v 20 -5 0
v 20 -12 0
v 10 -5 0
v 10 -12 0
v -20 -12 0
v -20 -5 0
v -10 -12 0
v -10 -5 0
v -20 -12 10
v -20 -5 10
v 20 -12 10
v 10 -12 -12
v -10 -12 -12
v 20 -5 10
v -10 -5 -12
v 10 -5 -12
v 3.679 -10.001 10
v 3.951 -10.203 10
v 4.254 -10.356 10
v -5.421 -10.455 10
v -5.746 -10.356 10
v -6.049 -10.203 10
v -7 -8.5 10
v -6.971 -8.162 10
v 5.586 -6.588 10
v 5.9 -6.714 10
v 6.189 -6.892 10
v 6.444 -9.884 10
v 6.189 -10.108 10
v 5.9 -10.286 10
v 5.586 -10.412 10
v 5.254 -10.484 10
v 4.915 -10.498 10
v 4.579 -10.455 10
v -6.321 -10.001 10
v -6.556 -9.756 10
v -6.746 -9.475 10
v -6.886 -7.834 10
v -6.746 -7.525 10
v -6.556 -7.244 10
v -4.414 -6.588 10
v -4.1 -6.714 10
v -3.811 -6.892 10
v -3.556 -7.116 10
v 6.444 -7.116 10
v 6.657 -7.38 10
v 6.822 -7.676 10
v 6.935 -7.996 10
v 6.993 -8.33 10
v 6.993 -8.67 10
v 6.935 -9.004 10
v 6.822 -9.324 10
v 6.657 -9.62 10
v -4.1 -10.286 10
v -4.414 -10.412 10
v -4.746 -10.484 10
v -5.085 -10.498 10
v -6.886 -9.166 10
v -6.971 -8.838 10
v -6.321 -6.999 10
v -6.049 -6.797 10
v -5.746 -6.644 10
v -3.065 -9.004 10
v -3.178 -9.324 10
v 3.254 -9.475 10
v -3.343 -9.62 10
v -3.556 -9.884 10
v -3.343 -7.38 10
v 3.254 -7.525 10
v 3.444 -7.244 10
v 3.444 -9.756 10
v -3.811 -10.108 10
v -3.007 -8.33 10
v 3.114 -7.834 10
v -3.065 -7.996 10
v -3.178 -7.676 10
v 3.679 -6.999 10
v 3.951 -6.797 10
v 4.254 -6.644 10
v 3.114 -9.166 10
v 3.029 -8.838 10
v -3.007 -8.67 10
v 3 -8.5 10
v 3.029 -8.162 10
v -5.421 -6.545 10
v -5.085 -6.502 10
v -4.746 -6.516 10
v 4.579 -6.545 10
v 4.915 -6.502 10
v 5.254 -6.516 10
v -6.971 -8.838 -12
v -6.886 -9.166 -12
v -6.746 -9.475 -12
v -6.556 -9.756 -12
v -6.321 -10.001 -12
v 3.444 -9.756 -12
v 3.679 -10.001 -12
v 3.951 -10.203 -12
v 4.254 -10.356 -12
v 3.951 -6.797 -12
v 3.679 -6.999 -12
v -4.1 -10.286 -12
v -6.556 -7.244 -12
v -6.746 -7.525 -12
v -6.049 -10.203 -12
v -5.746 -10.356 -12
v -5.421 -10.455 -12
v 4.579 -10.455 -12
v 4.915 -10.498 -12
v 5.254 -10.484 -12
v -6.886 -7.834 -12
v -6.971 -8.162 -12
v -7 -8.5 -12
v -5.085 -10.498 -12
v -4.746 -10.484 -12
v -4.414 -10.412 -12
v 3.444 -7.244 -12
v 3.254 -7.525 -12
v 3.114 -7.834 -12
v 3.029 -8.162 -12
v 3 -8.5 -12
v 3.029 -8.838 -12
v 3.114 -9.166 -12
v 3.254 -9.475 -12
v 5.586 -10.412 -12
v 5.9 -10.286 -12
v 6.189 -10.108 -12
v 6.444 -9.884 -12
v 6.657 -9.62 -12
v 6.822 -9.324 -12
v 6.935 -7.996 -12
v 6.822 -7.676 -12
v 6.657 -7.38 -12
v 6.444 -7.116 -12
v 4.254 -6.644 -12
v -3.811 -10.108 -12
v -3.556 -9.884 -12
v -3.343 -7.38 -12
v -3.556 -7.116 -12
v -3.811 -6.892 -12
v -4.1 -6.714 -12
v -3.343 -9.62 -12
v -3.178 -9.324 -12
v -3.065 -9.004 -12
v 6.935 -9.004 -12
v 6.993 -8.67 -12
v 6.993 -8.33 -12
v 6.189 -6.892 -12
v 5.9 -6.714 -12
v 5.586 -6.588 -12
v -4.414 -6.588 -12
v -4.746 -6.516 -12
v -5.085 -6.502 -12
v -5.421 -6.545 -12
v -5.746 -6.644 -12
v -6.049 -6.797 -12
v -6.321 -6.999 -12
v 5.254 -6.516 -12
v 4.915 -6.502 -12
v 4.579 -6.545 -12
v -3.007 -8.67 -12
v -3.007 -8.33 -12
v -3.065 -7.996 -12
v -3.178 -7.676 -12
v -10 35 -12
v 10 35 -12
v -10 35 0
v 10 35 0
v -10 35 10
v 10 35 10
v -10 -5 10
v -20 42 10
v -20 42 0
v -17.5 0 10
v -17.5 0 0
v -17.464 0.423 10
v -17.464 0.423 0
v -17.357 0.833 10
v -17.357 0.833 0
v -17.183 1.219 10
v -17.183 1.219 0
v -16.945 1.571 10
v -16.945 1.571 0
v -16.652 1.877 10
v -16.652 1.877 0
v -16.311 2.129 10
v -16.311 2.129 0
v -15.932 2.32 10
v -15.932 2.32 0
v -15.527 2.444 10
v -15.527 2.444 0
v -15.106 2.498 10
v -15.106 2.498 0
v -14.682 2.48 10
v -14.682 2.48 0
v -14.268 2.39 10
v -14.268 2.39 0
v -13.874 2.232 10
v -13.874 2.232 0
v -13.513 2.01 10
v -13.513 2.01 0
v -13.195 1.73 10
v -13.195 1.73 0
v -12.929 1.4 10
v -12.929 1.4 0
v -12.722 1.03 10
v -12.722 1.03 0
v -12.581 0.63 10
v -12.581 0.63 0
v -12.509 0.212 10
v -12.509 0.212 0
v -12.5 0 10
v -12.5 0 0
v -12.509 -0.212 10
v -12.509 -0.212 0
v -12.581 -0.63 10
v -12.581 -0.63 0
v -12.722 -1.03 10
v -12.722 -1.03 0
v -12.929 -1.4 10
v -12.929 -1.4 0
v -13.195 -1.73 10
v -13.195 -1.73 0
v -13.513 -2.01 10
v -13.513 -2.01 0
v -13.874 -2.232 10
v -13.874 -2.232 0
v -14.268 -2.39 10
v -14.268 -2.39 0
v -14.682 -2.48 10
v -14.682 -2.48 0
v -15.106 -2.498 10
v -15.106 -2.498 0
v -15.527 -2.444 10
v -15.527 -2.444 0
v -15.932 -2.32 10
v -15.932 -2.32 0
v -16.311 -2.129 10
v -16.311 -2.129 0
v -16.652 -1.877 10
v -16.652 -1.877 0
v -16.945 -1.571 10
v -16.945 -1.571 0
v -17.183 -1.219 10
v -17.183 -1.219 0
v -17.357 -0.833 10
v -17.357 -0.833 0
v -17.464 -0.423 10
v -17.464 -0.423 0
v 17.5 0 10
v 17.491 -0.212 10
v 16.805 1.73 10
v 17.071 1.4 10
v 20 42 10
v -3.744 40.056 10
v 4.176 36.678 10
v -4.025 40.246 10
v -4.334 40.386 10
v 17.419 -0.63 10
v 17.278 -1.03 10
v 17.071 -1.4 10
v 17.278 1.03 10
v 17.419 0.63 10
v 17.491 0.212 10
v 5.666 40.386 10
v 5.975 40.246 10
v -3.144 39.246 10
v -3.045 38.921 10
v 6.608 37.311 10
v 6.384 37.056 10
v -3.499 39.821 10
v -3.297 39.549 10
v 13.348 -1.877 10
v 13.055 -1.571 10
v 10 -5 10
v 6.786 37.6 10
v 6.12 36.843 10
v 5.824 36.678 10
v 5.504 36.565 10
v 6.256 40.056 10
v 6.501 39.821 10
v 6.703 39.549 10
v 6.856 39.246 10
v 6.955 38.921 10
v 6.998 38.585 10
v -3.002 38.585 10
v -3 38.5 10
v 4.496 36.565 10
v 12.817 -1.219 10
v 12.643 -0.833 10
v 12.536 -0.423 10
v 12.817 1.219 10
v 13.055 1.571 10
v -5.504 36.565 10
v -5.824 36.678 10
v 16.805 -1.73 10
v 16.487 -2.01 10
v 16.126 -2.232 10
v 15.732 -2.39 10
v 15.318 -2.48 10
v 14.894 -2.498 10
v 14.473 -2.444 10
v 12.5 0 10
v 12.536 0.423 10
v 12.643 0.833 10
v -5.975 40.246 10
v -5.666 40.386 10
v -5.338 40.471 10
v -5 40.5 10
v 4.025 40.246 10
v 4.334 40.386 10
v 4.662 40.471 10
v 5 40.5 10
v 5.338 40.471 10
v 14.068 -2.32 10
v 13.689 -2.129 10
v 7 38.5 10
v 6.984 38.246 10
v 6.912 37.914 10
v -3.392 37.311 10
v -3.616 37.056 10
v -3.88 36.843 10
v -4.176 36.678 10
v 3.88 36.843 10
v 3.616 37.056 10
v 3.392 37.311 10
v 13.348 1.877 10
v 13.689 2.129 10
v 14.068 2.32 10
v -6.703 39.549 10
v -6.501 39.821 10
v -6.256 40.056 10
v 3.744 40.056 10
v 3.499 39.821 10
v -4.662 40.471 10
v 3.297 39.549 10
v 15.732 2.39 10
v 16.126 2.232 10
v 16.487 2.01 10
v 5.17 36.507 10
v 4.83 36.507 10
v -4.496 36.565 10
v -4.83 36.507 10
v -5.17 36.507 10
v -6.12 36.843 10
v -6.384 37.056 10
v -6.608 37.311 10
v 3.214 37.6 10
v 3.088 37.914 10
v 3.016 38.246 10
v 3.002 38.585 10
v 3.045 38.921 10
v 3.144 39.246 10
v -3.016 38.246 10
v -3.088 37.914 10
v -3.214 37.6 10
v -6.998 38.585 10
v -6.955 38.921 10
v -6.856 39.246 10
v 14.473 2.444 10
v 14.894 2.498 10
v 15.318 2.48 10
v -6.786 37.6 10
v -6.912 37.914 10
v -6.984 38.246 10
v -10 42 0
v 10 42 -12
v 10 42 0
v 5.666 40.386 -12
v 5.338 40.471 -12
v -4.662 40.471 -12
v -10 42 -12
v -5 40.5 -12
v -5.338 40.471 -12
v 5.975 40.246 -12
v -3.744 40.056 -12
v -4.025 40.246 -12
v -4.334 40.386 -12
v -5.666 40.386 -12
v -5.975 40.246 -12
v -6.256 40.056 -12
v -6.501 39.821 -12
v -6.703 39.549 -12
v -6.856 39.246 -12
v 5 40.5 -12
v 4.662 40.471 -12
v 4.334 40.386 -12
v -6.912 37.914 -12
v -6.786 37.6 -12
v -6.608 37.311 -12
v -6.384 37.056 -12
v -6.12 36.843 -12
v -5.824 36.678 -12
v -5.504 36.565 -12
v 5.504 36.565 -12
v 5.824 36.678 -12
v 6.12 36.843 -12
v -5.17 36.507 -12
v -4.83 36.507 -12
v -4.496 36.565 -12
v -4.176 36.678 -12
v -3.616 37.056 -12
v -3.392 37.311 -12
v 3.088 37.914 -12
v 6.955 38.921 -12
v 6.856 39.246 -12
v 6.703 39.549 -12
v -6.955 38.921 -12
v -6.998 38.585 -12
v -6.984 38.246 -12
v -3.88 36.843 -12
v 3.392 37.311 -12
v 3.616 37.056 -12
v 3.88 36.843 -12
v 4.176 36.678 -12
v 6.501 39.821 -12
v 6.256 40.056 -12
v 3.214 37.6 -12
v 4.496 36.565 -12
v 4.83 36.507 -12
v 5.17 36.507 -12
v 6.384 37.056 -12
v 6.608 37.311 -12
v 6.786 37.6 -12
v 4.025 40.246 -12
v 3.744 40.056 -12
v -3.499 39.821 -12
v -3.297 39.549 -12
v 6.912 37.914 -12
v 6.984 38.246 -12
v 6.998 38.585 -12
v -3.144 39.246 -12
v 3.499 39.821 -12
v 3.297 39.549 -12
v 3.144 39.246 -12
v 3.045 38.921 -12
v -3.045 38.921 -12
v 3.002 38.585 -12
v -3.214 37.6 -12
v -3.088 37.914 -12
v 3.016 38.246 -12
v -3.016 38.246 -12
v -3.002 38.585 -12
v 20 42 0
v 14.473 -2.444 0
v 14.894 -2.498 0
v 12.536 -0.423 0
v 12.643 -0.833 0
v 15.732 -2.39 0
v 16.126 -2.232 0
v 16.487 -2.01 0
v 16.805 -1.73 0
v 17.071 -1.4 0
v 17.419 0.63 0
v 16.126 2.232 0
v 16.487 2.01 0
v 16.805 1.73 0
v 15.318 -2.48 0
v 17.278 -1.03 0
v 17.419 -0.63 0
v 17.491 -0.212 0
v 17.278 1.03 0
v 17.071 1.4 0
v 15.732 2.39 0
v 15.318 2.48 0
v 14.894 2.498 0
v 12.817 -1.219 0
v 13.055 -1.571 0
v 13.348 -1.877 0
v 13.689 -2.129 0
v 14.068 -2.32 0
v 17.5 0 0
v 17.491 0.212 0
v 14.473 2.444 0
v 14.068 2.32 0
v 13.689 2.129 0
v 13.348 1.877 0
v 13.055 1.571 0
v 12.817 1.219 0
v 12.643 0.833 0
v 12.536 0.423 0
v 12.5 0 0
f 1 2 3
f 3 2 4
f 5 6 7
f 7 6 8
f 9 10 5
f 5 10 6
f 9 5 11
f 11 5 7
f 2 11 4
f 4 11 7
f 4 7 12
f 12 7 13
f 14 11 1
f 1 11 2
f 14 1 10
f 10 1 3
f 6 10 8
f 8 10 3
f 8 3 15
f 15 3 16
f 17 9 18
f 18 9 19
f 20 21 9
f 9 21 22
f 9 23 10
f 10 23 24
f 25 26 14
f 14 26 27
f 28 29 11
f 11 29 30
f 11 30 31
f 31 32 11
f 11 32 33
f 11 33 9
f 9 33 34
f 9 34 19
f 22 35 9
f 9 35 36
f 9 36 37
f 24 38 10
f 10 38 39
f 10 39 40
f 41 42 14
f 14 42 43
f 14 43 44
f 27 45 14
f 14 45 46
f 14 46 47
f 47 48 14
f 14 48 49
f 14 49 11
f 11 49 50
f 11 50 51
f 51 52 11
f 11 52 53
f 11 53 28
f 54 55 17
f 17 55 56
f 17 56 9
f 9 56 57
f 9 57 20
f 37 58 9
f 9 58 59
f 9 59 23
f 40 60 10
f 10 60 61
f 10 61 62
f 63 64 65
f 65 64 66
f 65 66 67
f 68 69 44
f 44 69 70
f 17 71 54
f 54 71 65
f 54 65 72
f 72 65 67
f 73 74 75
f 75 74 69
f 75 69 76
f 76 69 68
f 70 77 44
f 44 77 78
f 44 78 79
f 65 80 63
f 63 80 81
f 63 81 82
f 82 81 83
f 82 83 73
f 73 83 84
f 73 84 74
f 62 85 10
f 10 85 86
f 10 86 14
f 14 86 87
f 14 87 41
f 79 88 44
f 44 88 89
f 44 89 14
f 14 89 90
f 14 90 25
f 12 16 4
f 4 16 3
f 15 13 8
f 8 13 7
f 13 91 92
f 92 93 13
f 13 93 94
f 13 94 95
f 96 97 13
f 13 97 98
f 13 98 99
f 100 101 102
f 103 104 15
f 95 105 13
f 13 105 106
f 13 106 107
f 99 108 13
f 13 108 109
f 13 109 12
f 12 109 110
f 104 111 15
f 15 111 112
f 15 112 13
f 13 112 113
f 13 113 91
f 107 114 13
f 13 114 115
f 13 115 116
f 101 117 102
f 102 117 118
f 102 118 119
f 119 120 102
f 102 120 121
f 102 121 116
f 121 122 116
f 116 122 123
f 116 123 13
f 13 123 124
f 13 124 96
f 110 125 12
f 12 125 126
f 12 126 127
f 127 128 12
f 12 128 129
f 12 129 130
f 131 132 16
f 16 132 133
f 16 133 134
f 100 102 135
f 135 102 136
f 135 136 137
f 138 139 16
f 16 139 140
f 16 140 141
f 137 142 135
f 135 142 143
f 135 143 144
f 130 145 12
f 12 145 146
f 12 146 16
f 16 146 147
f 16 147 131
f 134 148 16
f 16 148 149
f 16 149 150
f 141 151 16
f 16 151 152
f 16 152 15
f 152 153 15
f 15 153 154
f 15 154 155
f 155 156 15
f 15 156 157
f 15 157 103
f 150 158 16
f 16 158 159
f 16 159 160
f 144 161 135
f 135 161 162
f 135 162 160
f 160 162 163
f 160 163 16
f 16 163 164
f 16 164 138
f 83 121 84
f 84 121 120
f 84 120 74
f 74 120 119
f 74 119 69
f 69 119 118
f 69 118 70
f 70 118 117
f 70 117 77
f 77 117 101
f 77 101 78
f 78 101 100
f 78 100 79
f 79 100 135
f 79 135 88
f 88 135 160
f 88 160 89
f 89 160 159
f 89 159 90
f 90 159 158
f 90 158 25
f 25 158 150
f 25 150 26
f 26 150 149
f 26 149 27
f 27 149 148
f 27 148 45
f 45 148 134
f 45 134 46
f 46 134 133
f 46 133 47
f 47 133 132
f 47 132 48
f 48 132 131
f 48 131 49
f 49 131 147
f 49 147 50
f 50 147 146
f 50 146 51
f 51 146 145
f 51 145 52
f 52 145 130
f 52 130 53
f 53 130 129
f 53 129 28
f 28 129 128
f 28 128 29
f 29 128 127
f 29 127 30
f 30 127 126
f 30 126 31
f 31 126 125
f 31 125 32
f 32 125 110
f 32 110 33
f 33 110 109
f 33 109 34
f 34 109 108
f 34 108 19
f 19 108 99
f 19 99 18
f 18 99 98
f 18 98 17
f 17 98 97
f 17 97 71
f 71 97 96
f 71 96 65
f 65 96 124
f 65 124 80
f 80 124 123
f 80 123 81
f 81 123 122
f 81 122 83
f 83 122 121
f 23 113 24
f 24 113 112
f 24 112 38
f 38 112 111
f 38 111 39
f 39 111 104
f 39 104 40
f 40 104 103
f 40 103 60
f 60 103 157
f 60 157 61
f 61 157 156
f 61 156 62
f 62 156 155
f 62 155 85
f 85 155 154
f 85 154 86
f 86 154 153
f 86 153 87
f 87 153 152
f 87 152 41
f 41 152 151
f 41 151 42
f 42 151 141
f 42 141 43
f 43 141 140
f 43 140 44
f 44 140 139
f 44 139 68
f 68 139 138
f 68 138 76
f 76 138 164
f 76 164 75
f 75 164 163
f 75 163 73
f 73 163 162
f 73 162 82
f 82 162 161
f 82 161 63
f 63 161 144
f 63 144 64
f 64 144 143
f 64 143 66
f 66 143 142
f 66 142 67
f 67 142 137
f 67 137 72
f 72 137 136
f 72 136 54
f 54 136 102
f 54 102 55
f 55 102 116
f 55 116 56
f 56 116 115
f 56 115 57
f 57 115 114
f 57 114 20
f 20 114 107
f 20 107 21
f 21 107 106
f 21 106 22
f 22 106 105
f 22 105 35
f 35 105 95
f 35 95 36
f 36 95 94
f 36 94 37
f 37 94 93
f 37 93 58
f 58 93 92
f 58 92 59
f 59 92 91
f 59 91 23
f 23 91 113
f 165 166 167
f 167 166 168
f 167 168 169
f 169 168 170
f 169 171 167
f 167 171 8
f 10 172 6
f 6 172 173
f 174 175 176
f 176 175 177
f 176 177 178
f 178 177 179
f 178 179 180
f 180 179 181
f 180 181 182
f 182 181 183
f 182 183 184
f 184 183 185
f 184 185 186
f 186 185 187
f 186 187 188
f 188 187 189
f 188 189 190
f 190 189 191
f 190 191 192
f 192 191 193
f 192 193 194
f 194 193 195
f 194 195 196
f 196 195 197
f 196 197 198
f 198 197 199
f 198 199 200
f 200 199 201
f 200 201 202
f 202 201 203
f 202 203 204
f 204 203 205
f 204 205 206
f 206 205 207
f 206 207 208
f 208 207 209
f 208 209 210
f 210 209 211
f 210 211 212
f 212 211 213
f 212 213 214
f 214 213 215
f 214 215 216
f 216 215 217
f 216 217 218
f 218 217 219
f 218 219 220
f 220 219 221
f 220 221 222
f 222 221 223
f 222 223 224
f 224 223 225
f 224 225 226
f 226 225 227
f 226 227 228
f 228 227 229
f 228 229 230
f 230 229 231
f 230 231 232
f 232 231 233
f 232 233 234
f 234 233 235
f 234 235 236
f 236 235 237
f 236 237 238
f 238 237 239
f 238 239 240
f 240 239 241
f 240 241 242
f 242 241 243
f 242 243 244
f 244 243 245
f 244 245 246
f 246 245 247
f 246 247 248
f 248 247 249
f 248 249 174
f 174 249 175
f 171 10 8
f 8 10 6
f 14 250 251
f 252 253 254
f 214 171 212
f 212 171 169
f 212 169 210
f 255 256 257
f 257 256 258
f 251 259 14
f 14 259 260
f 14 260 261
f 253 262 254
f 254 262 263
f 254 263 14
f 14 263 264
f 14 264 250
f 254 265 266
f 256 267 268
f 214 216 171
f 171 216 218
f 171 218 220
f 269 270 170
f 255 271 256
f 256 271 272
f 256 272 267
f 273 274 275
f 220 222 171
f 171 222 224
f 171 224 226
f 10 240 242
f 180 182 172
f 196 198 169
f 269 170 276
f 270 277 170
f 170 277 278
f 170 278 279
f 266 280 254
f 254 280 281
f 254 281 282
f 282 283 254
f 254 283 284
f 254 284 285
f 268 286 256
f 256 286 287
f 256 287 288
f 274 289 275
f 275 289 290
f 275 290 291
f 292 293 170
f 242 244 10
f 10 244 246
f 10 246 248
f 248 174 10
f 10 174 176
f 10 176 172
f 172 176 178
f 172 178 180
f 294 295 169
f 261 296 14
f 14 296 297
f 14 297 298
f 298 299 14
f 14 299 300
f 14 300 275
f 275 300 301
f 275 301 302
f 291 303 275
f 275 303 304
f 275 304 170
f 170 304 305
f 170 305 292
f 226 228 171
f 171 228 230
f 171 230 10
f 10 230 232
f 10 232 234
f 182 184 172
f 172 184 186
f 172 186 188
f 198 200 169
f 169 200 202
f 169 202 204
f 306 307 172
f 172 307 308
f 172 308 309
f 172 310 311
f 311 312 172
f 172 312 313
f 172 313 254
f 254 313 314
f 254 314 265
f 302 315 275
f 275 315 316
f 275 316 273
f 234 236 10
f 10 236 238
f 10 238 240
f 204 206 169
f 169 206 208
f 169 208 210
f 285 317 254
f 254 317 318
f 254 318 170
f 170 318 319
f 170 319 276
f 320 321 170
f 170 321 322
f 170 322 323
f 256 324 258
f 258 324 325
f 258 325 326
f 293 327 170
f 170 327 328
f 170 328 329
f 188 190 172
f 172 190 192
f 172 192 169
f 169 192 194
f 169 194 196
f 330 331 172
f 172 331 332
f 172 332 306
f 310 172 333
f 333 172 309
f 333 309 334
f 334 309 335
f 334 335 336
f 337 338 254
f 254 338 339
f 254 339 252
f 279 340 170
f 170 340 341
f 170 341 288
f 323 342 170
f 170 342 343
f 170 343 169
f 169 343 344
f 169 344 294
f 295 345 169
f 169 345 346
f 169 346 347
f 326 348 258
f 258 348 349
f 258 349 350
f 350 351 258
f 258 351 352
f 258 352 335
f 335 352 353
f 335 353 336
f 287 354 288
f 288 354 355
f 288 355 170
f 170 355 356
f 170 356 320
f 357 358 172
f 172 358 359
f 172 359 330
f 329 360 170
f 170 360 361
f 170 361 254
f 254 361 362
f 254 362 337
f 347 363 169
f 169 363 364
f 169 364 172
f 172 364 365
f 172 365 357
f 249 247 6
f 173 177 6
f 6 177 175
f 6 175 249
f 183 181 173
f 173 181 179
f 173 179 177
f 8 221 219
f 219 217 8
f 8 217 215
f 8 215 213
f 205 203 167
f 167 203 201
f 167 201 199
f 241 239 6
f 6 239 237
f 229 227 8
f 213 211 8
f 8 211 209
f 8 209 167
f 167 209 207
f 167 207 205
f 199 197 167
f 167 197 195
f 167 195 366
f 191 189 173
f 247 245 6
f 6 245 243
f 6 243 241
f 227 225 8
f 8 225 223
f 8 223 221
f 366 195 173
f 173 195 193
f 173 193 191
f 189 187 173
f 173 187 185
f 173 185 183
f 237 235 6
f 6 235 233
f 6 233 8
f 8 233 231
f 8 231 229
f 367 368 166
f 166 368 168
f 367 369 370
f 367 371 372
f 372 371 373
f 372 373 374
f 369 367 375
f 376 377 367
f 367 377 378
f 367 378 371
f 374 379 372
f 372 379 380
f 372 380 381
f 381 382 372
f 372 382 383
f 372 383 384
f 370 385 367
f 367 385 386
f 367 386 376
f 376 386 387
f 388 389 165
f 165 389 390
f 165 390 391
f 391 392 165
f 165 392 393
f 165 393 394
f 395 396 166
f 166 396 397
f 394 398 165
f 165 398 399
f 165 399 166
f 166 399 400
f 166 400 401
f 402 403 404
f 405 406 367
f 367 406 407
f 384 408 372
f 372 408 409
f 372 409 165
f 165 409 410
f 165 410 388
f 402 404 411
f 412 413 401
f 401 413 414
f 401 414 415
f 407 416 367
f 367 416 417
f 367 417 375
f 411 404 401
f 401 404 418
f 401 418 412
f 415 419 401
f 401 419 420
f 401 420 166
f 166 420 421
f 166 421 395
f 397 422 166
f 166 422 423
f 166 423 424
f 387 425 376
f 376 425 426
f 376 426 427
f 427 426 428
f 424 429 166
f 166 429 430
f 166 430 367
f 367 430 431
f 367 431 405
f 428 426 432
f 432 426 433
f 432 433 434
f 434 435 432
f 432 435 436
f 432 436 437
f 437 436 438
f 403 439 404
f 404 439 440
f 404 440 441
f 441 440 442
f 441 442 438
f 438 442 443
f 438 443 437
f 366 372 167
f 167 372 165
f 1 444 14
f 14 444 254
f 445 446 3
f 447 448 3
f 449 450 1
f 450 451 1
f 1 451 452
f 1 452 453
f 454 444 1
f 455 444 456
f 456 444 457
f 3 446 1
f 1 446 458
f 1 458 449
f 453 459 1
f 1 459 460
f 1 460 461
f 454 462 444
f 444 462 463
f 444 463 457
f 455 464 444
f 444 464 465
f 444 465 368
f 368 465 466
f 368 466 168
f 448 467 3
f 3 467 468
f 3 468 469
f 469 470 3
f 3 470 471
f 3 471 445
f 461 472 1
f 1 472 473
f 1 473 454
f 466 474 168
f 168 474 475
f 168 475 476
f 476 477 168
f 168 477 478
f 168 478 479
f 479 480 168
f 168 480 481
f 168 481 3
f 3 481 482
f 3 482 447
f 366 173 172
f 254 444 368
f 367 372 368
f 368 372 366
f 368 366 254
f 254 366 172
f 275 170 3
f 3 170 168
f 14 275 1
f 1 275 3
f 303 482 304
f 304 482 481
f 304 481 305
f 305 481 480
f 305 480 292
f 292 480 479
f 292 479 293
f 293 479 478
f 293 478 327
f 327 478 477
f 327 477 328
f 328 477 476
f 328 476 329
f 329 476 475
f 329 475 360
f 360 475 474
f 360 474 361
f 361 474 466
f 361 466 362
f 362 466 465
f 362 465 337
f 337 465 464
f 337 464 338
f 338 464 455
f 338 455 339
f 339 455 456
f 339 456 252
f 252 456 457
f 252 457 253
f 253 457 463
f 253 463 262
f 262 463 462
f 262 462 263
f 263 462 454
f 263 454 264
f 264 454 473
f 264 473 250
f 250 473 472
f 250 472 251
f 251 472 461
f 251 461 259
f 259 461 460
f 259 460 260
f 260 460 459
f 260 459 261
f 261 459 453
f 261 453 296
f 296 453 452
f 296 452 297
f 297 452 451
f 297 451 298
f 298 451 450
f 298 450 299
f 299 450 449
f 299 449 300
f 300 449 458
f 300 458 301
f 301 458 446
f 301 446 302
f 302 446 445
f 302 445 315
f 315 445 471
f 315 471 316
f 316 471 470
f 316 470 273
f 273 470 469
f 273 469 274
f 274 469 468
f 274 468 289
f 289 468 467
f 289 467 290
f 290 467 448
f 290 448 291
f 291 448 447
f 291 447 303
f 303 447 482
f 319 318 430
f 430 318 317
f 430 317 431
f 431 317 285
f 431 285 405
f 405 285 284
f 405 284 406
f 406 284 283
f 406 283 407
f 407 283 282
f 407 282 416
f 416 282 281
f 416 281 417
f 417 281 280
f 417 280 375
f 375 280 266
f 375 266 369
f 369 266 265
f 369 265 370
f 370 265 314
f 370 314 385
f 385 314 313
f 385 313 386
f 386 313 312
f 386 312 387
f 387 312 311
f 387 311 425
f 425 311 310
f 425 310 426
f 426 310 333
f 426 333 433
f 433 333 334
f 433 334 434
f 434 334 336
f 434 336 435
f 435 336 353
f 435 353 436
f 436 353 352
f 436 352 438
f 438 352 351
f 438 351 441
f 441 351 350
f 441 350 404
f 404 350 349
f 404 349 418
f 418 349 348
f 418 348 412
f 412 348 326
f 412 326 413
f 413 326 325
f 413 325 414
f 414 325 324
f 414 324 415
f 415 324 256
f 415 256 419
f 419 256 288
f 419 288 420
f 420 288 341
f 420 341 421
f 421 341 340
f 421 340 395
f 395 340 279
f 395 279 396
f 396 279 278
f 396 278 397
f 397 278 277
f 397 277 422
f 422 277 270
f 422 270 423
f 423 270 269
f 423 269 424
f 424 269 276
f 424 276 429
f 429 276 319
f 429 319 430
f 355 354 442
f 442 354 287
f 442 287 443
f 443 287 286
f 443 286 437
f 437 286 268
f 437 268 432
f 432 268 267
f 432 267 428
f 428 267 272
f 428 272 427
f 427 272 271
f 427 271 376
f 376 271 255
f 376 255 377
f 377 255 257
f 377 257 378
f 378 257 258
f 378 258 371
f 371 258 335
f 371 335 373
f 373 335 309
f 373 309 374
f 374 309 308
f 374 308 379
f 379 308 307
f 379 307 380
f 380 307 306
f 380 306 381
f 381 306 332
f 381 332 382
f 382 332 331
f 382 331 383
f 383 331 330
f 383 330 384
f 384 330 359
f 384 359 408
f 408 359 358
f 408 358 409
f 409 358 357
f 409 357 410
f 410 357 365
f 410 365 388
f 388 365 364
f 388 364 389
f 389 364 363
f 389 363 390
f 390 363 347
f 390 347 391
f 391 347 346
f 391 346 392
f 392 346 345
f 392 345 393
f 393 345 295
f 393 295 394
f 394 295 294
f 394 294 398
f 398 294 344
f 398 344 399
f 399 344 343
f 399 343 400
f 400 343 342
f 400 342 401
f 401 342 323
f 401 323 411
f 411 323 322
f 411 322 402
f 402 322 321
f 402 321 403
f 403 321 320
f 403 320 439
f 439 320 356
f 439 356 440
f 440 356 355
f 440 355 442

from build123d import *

# Parameters (mm, degrees)
SKETCH_1_W          = 10
SKETCH_1_H          = 10
SKETCH_1_R          = 2.5
EXTRUDE_2_DEPTH     = 10
EXTRUDE_2_2_DEPTH   = 10
SKETCH_2_W          = 40
SKETCH_2_H          = 7
EXTRUDE_3_DEPTH     = 10
SKETCH_3_W          = 20
SKETCH_3_H          = 7
EXTRUDE_4_DEPTH     = 12
SKETCH_4_R          = 2
CUT_EXTRUDE_1_DEPTH = 33.062439084
SKETCH_5_W          = 10
SKETCH_5_H          = 10
EXTRUDE_5_DEPTH     = 30
SKETCH_6_W          = 20
SKETCH_6_H          = 12
SKETCH_6_W_2        = 10
SKETCH_6_H_2        = 10
EXTRUDE_6_DEPTH     = 7
SKETCH_7_R          = 2
CUT_EXTRUDE_2_DEPTH = 52.458721321


with BuildPart() as part:
    # Эскиз1 → Бобышка-Вытянуть2 (new body)
    with BuildSketch(Plane.XY):
        with Locations((-15, 0)):
            Rectangle(SKETCH_1_W, SKETCH_1_H)
        with Locations((-15, 0)):
            Circle(SKETCH_1_R, mode=Mode.SUBTRACT)
    extrude(amount=EXTRUDE_2_DEPTH)



with BuildPart() as body_2:
    # Эскиз1 → Extrude 2 2 (new body)
    with BuildSketch(Plane.XY):
        with Locations((15, 0)):
            Rectangle(SKETCH_1_W, SKETCH_1_H)
        with Locations((15, 0)):
            Circle(SKETCH_1_R, mode=Mode.SUBTRACT)
    extrude(amount=EXTRUDE_2_2_DEPTH)


with BuildPart() as body_3:
    # Эскиз2 → Бобышка-Вытянуть3 (new body)
    with BuildSketch(Plane.XY):
        with Locations((0, -8.5)):
            Rectangle(SKETCH_2_W, SKETCH_2_H)
    extrude(amount=EXTRUDE_3_DEPTH)

    # Эскиз3 → Бобышка-Вытянуть4 (add)
    with BuildSketch(Plane(origin=(0, 0, 0), x_dir=(-1, 0, 0), z_dir=(0, 0, -1))):
        with Locations((0, -8.5)):
            Rectangle(SKETCH_3_W, SKETCH_3_H)
    extrude(amount=EXTRUDE_4_DEPTH)

    # Эскиз4 → Вырез-Вытянуть1 (cut, through all)
    with BuildSketch(Plane(origin=(0, 0, -12), x_dir=(-1, 0, 0), z_dir=(0, 0, -1))):
        with Locations((-5, -8.5)):
            Circle(SKETCH_4_R)
        with Locations((5, -8.5)):
            Circle(SKETCH_4_R)
    extrude(amount=-CUT_EXTRUDE_1_DEPTH, mode=Mode.SUBTRACT)


with BuildPart() as part_1:
    add(part.part)

    add(body_2.part)  # Бобышка-Вытянуть5 merges body 2
    # Эскиз5 → Бобышка-Вытянуть5 (add)
    with BuildSketch(Plane(origin=(0, 5, 0), x_dir=(1, 0, 0), z_dir=(0, 1, 0))):
        with Locations((-15, -5)):
            Rectangle(SKETCH_5_W, SKETCH_5_H)
        with Locations((15, -5)):
            Rectangle(SKETCH_5_W, SKETCH_5_H)
    extrude(amount=EXTRUDE_5_DEPTH)

    # Эскиз6 → Бобышка-Вытянуть6 (add)
    with BuildSketch(Plane(origin=(0, 35, 0), x_dir=(1, 0, 0), z_dir=(0, 1, 0))):
        with Locations((0, 6)):
            Rectangle(SKETCH_6_W, SKETCH_6_H)
        Polygon((-10, 0), (-20, 0), (-20, -10), (10, -10), (10, 0), align=None)
        with Locations((15, -5)):
            Rectangle(SKETCH_6_W_2, SKETCH_6_H_2)
    extrude(amount=EXTRUDE_6_DEPTH)

    # Эскиз7 → Вырез-Вытянуть2 (cut, through all)
    with BuildSketch(Plane(origin=(0, 0, -12), x_dir=(-1, 0, 0), z_dir=(0, 0, -1))):
        with Locations(Location((-5, 38.5, 0), (0, 0, 90))):
            Circle(SKETCH_7_R)
        with Locations(Location((5, 38.5, 0), (0, 0, 90))):
            Circle(SKETCH_7_R)
    extrude(amount=-CUT_EXTRUDE_2_DEPTH, mode=Mode.SUBTRACT)


solid = Compound([body_3.part, part_1.part])
